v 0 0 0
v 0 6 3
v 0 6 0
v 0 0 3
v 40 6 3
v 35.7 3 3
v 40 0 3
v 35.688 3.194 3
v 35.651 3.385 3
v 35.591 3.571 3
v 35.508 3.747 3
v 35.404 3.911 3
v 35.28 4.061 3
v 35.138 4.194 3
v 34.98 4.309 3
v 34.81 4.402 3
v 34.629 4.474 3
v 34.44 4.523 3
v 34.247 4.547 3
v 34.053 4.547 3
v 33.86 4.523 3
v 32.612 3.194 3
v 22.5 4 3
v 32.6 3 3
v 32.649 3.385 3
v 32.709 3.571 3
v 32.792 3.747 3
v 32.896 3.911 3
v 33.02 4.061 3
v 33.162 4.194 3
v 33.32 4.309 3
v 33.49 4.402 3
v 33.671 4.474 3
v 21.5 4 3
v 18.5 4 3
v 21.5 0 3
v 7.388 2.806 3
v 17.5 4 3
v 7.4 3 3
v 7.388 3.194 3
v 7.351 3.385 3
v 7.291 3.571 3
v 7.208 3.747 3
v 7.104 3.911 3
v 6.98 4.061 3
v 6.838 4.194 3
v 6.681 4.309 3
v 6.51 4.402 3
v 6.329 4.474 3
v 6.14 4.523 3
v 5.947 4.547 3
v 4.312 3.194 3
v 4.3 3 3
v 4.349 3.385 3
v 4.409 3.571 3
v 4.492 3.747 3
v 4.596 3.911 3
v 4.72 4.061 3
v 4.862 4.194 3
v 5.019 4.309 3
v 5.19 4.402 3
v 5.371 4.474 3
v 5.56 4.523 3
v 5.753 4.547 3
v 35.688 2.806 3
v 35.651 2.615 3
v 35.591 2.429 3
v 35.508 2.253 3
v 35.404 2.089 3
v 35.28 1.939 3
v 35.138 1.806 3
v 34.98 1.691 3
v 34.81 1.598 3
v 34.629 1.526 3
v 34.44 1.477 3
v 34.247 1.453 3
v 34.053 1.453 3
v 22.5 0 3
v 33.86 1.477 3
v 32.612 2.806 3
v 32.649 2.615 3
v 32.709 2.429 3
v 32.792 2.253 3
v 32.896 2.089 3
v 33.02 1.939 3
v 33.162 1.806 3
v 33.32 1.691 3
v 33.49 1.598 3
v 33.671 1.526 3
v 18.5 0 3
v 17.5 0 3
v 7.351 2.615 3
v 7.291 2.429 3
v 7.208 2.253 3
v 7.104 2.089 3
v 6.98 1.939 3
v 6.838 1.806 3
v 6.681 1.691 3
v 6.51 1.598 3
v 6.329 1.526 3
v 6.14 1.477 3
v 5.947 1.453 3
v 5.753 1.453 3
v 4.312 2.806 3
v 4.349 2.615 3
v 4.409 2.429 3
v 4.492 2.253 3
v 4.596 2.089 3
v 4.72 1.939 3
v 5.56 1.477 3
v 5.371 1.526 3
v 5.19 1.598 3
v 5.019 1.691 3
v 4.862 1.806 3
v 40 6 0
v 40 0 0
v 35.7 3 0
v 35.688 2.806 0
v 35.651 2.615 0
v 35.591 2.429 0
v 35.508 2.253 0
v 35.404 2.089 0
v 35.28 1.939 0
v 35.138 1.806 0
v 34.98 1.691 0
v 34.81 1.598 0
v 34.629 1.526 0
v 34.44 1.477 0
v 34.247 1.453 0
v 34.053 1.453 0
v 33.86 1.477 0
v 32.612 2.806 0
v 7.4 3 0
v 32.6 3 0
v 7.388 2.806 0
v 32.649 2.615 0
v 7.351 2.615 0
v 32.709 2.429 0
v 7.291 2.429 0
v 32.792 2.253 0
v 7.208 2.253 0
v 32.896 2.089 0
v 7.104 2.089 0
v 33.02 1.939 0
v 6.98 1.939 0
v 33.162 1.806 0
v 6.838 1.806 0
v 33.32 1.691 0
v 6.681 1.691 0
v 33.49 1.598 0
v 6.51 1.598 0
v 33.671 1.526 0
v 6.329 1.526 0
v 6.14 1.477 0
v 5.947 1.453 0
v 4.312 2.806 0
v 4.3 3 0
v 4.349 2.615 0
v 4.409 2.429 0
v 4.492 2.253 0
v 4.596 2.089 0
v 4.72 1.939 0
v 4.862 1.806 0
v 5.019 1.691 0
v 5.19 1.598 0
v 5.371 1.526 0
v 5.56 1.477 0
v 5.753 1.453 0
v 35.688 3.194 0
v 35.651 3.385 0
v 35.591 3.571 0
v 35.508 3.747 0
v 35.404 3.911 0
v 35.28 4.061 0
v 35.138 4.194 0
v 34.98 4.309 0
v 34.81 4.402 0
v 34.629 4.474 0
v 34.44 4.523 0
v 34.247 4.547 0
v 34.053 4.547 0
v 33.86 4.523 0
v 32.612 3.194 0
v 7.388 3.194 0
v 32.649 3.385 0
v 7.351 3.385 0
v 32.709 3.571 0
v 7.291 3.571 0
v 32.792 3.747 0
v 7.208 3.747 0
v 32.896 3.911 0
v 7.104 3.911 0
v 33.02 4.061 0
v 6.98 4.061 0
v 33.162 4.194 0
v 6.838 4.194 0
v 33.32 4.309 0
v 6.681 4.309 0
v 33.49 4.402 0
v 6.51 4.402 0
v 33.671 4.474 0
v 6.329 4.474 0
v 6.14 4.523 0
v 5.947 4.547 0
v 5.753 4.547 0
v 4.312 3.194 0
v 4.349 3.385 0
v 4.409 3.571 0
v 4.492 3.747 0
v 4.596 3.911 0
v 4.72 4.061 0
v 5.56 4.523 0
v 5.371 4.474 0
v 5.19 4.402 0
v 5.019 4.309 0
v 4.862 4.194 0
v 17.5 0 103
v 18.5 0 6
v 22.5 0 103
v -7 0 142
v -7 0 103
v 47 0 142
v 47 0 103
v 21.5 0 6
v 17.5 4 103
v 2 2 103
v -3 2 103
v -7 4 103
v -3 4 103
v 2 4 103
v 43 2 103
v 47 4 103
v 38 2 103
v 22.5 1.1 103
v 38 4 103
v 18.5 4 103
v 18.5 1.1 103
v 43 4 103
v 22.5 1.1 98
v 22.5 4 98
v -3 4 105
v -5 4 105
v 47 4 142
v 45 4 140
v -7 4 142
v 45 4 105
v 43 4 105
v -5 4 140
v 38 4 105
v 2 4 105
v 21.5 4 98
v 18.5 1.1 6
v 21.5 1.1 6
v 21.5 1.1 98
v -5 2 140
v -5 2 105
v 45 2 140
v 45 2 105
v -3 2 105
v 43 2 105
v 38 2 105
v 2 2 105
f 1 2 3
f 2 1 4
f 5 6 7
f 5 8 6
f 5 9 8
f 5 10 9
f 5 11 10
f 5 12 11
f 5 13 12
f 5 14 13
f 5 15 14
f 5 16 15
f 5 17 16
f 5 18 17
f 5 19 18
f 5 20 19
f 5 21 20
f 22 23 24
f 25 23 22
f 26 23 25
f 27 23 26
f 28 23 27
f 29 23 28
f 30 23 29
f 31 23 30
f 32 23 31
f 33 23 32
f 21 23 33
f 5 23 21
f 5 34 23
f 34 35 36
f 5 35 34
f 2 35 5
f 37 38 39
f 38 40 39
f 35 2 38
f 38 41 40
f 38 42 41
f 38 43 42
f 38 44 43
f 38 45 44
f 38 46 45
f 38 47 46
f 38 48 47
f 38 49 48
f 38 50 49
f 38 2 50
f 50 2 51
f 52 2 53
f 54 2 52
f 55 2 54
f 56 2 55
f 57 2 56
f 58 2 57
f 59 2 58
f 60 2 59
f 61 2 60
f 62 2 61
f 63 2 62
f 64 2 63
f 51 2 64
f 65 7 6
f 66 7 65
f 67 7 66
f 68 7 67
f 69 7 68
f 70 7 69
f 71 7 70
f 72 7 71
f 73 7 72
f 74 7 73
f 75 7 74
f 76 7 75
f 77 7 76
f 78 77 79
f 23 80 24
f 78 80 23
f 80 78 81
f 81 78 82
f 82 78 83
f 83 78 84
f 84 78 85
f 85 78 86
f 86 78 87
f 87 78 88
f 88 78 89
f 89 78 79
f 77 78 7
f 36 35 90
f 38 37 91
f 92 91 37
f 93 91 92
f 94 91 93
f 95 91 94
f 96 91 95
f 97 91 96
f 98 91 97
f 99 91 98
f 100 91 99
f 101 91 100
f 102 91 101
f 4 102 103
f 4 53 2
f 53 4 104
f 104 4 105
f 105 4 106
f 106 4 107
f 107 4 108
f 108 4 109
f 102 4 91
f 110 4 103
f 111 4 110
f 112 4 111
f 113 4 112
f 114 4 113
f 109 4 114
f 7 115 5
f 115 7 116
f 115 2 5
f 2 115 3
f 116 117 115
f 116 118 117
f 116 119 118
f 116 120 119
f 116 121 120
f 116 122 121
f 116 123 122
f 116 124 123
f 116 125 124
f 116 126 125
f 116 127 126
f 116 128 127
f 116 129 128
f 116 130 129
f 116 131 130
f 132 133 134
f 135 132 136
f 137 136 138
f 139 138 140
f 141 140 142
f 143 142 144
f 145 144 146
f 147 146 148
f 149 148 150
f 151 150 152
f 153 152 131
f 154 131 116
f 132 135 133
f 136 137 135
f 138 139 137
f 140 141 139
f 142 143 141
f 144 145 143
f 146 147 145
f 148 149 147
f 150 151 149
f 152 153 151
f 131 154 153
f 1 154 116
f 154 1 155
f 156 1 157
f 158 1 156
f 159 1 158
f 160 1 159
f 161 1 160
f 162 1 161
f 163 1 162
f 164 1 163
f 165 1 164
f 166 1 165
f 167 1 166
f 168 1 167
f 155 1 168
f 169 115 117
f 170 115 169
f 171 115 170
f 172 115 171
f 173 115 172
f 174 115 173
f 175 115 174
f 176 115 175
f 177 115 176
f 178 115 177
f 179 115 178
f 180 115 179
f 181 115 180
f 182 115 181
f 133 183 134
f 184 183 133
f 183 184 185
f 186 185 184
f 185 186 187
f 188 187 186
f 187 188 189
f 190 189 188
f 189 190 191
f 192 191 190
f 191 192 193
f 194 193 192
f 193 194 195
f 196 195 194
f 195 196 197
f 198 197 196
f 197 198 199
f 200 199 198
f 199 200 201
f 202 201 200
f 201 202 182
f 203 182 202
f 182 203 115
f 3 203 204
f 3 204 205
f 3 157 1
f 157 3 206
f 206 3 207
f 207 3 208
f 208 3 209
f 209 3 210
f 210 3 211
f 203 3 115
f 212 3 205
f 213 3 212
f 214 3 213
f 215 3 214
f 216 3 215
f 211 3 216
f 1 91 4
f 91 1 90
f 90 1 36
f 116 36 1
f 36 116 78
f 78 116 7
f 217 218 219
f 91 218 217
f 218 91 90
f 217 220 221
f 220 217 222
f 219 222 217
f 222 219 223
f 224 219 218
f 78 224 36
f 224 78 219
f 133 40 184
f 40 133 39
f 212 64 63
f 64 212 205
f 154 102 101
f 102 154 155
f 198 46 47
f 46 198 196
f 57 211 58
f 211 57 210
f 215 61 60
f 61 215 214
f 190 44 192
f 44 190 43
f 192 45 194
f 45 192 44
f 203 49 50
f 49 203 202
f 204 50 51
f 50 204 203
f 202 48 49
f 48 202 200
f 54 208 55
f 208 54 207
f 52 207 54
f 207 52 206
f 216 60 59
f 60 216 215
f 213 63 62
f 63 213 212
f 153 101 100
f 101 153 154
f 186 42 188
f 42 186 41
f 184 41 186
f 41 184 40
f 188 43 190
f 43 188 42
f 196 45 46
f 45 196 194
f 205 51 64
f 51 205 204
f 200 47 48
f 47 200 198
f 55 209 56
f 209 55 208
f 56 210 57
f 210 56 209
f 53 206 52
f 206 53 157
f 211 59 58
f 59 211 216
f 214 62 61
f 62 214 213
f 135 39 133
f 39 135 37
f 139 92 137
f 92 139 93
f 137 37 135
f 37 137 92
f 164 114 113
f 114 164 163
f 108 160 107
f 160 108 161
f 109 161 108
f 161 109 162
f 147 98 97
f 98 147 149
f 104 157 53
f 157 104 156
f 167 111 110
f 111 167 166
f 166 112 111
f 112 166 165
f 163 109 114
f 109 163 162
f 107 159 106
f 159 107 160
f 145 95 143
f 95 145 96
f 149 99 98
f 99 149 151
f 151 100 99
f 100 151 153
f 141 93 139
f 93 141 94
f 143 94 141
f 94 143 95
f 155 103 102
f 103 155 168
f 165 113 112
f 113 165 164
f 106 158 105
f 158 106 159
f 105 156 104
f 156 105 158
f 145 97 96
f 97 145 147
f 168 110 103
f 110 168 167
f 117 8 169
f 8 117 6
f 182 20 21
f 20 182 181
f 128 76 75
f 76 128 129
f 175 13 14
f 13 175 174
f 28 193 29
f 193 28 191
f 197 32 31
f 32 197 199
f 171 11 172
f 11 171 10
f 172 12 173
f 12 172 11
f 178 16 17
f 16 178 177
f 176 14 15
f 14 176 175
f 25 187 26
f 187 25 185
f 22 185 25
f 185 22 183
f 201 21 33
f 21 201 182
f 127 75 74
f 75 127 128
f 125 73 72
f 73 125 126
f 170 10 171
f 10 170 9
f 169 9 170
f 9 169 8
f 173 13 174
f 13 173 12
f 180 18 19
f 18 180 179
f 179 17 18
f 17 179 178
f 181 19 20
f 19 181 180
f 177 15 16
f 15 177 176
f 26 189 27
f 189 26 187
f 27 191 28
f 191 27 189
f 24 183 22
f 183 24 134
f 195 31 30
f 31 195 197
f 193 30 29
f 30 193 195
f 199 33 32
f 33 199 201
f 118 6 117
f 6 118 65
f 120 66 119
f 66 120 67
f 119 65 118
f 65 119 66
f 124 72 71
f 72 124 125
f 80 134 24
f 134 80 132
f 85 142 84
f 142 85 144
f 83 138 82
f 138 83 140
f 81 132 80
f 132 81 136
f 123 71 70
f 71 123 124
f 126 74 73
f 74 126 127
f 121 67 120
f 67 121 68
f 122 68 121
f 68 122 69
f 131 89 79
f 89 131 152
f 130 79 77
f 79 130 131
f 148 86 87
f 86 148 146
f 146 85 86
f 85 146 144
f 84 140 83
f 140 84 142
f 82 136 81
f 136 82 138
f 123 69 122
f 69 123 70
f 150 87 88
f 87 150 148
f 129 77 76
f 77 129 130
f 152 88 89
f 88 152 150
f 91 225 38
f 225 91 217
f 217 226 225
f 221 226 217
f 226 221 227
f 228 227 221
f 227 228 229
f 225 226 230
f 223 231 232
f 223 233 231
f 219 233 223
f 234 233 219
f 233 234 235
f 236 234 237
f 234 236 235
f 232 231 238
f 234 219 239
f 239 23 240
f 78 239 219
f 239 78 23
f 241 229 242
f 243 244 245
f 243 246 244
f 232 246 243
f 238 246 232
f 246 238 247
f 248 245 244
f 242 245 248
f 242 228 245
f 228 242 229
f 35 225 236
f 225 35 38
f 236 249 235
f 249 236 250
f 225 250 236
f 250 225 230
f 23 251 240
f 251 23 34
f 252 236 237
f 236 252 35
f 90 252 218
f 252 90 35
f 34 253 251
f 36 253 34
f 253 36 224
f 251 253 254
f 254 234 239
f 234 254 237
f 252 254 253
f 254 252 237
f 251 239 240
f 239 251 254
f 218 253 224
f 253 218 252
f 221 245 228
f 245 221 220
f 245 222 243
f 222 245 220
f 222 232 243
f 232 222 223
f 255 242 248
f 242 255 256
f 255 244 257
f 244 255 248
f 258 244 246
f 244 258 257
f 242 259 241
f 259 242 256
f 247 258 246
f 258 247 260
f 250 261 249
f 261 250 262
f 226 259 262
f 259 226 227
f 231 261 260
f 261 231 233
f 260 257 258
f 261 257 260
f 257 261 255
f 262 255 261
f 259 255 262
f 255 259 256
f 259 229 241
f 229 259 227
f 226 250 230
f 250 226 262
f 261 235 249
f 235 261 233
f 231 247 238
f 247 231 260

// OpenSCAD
// led-strip single: 50x7

// 20-40-distance is 20mm

$fn=50;

//base
difference(){
    cube([40, 6, 3]);
    
    translate([20-(28.3/2), 3, -0.5])
    cylinder(r=1.55, h=4);
    
    translate([20+(28.3/2), 3,-0.5])
    cylinder(r=1.55, h=4);    
}

// pole
difference(){
    translate([20-2.5, 0,3])
    cube([5,4,100]);
    
    translate([20-2.5+1, 1.1, 3])
    cube([3, 5, 100]);
    
    translate([20,1.1,100-2])
    cube([5,5,5]);
    
    translate([20-1.5,-2,3])
    cube([3,5,3]);
}

// led holder
difference(){
    translate([-54/2+20,0,3+100])
    cube([50+4, 4, 7*5+4]);
    
    translate([-54/2+20+2, 2, 3+100+2])
    cube([50, 10, 7*5]);    
    
    translate([-54/2+20+4,2,2.9+100])
    cube([5,10,5]);
    
    translate([-54/2+60+5,2,2.9+100])
    cube([5,10,5]);
}
